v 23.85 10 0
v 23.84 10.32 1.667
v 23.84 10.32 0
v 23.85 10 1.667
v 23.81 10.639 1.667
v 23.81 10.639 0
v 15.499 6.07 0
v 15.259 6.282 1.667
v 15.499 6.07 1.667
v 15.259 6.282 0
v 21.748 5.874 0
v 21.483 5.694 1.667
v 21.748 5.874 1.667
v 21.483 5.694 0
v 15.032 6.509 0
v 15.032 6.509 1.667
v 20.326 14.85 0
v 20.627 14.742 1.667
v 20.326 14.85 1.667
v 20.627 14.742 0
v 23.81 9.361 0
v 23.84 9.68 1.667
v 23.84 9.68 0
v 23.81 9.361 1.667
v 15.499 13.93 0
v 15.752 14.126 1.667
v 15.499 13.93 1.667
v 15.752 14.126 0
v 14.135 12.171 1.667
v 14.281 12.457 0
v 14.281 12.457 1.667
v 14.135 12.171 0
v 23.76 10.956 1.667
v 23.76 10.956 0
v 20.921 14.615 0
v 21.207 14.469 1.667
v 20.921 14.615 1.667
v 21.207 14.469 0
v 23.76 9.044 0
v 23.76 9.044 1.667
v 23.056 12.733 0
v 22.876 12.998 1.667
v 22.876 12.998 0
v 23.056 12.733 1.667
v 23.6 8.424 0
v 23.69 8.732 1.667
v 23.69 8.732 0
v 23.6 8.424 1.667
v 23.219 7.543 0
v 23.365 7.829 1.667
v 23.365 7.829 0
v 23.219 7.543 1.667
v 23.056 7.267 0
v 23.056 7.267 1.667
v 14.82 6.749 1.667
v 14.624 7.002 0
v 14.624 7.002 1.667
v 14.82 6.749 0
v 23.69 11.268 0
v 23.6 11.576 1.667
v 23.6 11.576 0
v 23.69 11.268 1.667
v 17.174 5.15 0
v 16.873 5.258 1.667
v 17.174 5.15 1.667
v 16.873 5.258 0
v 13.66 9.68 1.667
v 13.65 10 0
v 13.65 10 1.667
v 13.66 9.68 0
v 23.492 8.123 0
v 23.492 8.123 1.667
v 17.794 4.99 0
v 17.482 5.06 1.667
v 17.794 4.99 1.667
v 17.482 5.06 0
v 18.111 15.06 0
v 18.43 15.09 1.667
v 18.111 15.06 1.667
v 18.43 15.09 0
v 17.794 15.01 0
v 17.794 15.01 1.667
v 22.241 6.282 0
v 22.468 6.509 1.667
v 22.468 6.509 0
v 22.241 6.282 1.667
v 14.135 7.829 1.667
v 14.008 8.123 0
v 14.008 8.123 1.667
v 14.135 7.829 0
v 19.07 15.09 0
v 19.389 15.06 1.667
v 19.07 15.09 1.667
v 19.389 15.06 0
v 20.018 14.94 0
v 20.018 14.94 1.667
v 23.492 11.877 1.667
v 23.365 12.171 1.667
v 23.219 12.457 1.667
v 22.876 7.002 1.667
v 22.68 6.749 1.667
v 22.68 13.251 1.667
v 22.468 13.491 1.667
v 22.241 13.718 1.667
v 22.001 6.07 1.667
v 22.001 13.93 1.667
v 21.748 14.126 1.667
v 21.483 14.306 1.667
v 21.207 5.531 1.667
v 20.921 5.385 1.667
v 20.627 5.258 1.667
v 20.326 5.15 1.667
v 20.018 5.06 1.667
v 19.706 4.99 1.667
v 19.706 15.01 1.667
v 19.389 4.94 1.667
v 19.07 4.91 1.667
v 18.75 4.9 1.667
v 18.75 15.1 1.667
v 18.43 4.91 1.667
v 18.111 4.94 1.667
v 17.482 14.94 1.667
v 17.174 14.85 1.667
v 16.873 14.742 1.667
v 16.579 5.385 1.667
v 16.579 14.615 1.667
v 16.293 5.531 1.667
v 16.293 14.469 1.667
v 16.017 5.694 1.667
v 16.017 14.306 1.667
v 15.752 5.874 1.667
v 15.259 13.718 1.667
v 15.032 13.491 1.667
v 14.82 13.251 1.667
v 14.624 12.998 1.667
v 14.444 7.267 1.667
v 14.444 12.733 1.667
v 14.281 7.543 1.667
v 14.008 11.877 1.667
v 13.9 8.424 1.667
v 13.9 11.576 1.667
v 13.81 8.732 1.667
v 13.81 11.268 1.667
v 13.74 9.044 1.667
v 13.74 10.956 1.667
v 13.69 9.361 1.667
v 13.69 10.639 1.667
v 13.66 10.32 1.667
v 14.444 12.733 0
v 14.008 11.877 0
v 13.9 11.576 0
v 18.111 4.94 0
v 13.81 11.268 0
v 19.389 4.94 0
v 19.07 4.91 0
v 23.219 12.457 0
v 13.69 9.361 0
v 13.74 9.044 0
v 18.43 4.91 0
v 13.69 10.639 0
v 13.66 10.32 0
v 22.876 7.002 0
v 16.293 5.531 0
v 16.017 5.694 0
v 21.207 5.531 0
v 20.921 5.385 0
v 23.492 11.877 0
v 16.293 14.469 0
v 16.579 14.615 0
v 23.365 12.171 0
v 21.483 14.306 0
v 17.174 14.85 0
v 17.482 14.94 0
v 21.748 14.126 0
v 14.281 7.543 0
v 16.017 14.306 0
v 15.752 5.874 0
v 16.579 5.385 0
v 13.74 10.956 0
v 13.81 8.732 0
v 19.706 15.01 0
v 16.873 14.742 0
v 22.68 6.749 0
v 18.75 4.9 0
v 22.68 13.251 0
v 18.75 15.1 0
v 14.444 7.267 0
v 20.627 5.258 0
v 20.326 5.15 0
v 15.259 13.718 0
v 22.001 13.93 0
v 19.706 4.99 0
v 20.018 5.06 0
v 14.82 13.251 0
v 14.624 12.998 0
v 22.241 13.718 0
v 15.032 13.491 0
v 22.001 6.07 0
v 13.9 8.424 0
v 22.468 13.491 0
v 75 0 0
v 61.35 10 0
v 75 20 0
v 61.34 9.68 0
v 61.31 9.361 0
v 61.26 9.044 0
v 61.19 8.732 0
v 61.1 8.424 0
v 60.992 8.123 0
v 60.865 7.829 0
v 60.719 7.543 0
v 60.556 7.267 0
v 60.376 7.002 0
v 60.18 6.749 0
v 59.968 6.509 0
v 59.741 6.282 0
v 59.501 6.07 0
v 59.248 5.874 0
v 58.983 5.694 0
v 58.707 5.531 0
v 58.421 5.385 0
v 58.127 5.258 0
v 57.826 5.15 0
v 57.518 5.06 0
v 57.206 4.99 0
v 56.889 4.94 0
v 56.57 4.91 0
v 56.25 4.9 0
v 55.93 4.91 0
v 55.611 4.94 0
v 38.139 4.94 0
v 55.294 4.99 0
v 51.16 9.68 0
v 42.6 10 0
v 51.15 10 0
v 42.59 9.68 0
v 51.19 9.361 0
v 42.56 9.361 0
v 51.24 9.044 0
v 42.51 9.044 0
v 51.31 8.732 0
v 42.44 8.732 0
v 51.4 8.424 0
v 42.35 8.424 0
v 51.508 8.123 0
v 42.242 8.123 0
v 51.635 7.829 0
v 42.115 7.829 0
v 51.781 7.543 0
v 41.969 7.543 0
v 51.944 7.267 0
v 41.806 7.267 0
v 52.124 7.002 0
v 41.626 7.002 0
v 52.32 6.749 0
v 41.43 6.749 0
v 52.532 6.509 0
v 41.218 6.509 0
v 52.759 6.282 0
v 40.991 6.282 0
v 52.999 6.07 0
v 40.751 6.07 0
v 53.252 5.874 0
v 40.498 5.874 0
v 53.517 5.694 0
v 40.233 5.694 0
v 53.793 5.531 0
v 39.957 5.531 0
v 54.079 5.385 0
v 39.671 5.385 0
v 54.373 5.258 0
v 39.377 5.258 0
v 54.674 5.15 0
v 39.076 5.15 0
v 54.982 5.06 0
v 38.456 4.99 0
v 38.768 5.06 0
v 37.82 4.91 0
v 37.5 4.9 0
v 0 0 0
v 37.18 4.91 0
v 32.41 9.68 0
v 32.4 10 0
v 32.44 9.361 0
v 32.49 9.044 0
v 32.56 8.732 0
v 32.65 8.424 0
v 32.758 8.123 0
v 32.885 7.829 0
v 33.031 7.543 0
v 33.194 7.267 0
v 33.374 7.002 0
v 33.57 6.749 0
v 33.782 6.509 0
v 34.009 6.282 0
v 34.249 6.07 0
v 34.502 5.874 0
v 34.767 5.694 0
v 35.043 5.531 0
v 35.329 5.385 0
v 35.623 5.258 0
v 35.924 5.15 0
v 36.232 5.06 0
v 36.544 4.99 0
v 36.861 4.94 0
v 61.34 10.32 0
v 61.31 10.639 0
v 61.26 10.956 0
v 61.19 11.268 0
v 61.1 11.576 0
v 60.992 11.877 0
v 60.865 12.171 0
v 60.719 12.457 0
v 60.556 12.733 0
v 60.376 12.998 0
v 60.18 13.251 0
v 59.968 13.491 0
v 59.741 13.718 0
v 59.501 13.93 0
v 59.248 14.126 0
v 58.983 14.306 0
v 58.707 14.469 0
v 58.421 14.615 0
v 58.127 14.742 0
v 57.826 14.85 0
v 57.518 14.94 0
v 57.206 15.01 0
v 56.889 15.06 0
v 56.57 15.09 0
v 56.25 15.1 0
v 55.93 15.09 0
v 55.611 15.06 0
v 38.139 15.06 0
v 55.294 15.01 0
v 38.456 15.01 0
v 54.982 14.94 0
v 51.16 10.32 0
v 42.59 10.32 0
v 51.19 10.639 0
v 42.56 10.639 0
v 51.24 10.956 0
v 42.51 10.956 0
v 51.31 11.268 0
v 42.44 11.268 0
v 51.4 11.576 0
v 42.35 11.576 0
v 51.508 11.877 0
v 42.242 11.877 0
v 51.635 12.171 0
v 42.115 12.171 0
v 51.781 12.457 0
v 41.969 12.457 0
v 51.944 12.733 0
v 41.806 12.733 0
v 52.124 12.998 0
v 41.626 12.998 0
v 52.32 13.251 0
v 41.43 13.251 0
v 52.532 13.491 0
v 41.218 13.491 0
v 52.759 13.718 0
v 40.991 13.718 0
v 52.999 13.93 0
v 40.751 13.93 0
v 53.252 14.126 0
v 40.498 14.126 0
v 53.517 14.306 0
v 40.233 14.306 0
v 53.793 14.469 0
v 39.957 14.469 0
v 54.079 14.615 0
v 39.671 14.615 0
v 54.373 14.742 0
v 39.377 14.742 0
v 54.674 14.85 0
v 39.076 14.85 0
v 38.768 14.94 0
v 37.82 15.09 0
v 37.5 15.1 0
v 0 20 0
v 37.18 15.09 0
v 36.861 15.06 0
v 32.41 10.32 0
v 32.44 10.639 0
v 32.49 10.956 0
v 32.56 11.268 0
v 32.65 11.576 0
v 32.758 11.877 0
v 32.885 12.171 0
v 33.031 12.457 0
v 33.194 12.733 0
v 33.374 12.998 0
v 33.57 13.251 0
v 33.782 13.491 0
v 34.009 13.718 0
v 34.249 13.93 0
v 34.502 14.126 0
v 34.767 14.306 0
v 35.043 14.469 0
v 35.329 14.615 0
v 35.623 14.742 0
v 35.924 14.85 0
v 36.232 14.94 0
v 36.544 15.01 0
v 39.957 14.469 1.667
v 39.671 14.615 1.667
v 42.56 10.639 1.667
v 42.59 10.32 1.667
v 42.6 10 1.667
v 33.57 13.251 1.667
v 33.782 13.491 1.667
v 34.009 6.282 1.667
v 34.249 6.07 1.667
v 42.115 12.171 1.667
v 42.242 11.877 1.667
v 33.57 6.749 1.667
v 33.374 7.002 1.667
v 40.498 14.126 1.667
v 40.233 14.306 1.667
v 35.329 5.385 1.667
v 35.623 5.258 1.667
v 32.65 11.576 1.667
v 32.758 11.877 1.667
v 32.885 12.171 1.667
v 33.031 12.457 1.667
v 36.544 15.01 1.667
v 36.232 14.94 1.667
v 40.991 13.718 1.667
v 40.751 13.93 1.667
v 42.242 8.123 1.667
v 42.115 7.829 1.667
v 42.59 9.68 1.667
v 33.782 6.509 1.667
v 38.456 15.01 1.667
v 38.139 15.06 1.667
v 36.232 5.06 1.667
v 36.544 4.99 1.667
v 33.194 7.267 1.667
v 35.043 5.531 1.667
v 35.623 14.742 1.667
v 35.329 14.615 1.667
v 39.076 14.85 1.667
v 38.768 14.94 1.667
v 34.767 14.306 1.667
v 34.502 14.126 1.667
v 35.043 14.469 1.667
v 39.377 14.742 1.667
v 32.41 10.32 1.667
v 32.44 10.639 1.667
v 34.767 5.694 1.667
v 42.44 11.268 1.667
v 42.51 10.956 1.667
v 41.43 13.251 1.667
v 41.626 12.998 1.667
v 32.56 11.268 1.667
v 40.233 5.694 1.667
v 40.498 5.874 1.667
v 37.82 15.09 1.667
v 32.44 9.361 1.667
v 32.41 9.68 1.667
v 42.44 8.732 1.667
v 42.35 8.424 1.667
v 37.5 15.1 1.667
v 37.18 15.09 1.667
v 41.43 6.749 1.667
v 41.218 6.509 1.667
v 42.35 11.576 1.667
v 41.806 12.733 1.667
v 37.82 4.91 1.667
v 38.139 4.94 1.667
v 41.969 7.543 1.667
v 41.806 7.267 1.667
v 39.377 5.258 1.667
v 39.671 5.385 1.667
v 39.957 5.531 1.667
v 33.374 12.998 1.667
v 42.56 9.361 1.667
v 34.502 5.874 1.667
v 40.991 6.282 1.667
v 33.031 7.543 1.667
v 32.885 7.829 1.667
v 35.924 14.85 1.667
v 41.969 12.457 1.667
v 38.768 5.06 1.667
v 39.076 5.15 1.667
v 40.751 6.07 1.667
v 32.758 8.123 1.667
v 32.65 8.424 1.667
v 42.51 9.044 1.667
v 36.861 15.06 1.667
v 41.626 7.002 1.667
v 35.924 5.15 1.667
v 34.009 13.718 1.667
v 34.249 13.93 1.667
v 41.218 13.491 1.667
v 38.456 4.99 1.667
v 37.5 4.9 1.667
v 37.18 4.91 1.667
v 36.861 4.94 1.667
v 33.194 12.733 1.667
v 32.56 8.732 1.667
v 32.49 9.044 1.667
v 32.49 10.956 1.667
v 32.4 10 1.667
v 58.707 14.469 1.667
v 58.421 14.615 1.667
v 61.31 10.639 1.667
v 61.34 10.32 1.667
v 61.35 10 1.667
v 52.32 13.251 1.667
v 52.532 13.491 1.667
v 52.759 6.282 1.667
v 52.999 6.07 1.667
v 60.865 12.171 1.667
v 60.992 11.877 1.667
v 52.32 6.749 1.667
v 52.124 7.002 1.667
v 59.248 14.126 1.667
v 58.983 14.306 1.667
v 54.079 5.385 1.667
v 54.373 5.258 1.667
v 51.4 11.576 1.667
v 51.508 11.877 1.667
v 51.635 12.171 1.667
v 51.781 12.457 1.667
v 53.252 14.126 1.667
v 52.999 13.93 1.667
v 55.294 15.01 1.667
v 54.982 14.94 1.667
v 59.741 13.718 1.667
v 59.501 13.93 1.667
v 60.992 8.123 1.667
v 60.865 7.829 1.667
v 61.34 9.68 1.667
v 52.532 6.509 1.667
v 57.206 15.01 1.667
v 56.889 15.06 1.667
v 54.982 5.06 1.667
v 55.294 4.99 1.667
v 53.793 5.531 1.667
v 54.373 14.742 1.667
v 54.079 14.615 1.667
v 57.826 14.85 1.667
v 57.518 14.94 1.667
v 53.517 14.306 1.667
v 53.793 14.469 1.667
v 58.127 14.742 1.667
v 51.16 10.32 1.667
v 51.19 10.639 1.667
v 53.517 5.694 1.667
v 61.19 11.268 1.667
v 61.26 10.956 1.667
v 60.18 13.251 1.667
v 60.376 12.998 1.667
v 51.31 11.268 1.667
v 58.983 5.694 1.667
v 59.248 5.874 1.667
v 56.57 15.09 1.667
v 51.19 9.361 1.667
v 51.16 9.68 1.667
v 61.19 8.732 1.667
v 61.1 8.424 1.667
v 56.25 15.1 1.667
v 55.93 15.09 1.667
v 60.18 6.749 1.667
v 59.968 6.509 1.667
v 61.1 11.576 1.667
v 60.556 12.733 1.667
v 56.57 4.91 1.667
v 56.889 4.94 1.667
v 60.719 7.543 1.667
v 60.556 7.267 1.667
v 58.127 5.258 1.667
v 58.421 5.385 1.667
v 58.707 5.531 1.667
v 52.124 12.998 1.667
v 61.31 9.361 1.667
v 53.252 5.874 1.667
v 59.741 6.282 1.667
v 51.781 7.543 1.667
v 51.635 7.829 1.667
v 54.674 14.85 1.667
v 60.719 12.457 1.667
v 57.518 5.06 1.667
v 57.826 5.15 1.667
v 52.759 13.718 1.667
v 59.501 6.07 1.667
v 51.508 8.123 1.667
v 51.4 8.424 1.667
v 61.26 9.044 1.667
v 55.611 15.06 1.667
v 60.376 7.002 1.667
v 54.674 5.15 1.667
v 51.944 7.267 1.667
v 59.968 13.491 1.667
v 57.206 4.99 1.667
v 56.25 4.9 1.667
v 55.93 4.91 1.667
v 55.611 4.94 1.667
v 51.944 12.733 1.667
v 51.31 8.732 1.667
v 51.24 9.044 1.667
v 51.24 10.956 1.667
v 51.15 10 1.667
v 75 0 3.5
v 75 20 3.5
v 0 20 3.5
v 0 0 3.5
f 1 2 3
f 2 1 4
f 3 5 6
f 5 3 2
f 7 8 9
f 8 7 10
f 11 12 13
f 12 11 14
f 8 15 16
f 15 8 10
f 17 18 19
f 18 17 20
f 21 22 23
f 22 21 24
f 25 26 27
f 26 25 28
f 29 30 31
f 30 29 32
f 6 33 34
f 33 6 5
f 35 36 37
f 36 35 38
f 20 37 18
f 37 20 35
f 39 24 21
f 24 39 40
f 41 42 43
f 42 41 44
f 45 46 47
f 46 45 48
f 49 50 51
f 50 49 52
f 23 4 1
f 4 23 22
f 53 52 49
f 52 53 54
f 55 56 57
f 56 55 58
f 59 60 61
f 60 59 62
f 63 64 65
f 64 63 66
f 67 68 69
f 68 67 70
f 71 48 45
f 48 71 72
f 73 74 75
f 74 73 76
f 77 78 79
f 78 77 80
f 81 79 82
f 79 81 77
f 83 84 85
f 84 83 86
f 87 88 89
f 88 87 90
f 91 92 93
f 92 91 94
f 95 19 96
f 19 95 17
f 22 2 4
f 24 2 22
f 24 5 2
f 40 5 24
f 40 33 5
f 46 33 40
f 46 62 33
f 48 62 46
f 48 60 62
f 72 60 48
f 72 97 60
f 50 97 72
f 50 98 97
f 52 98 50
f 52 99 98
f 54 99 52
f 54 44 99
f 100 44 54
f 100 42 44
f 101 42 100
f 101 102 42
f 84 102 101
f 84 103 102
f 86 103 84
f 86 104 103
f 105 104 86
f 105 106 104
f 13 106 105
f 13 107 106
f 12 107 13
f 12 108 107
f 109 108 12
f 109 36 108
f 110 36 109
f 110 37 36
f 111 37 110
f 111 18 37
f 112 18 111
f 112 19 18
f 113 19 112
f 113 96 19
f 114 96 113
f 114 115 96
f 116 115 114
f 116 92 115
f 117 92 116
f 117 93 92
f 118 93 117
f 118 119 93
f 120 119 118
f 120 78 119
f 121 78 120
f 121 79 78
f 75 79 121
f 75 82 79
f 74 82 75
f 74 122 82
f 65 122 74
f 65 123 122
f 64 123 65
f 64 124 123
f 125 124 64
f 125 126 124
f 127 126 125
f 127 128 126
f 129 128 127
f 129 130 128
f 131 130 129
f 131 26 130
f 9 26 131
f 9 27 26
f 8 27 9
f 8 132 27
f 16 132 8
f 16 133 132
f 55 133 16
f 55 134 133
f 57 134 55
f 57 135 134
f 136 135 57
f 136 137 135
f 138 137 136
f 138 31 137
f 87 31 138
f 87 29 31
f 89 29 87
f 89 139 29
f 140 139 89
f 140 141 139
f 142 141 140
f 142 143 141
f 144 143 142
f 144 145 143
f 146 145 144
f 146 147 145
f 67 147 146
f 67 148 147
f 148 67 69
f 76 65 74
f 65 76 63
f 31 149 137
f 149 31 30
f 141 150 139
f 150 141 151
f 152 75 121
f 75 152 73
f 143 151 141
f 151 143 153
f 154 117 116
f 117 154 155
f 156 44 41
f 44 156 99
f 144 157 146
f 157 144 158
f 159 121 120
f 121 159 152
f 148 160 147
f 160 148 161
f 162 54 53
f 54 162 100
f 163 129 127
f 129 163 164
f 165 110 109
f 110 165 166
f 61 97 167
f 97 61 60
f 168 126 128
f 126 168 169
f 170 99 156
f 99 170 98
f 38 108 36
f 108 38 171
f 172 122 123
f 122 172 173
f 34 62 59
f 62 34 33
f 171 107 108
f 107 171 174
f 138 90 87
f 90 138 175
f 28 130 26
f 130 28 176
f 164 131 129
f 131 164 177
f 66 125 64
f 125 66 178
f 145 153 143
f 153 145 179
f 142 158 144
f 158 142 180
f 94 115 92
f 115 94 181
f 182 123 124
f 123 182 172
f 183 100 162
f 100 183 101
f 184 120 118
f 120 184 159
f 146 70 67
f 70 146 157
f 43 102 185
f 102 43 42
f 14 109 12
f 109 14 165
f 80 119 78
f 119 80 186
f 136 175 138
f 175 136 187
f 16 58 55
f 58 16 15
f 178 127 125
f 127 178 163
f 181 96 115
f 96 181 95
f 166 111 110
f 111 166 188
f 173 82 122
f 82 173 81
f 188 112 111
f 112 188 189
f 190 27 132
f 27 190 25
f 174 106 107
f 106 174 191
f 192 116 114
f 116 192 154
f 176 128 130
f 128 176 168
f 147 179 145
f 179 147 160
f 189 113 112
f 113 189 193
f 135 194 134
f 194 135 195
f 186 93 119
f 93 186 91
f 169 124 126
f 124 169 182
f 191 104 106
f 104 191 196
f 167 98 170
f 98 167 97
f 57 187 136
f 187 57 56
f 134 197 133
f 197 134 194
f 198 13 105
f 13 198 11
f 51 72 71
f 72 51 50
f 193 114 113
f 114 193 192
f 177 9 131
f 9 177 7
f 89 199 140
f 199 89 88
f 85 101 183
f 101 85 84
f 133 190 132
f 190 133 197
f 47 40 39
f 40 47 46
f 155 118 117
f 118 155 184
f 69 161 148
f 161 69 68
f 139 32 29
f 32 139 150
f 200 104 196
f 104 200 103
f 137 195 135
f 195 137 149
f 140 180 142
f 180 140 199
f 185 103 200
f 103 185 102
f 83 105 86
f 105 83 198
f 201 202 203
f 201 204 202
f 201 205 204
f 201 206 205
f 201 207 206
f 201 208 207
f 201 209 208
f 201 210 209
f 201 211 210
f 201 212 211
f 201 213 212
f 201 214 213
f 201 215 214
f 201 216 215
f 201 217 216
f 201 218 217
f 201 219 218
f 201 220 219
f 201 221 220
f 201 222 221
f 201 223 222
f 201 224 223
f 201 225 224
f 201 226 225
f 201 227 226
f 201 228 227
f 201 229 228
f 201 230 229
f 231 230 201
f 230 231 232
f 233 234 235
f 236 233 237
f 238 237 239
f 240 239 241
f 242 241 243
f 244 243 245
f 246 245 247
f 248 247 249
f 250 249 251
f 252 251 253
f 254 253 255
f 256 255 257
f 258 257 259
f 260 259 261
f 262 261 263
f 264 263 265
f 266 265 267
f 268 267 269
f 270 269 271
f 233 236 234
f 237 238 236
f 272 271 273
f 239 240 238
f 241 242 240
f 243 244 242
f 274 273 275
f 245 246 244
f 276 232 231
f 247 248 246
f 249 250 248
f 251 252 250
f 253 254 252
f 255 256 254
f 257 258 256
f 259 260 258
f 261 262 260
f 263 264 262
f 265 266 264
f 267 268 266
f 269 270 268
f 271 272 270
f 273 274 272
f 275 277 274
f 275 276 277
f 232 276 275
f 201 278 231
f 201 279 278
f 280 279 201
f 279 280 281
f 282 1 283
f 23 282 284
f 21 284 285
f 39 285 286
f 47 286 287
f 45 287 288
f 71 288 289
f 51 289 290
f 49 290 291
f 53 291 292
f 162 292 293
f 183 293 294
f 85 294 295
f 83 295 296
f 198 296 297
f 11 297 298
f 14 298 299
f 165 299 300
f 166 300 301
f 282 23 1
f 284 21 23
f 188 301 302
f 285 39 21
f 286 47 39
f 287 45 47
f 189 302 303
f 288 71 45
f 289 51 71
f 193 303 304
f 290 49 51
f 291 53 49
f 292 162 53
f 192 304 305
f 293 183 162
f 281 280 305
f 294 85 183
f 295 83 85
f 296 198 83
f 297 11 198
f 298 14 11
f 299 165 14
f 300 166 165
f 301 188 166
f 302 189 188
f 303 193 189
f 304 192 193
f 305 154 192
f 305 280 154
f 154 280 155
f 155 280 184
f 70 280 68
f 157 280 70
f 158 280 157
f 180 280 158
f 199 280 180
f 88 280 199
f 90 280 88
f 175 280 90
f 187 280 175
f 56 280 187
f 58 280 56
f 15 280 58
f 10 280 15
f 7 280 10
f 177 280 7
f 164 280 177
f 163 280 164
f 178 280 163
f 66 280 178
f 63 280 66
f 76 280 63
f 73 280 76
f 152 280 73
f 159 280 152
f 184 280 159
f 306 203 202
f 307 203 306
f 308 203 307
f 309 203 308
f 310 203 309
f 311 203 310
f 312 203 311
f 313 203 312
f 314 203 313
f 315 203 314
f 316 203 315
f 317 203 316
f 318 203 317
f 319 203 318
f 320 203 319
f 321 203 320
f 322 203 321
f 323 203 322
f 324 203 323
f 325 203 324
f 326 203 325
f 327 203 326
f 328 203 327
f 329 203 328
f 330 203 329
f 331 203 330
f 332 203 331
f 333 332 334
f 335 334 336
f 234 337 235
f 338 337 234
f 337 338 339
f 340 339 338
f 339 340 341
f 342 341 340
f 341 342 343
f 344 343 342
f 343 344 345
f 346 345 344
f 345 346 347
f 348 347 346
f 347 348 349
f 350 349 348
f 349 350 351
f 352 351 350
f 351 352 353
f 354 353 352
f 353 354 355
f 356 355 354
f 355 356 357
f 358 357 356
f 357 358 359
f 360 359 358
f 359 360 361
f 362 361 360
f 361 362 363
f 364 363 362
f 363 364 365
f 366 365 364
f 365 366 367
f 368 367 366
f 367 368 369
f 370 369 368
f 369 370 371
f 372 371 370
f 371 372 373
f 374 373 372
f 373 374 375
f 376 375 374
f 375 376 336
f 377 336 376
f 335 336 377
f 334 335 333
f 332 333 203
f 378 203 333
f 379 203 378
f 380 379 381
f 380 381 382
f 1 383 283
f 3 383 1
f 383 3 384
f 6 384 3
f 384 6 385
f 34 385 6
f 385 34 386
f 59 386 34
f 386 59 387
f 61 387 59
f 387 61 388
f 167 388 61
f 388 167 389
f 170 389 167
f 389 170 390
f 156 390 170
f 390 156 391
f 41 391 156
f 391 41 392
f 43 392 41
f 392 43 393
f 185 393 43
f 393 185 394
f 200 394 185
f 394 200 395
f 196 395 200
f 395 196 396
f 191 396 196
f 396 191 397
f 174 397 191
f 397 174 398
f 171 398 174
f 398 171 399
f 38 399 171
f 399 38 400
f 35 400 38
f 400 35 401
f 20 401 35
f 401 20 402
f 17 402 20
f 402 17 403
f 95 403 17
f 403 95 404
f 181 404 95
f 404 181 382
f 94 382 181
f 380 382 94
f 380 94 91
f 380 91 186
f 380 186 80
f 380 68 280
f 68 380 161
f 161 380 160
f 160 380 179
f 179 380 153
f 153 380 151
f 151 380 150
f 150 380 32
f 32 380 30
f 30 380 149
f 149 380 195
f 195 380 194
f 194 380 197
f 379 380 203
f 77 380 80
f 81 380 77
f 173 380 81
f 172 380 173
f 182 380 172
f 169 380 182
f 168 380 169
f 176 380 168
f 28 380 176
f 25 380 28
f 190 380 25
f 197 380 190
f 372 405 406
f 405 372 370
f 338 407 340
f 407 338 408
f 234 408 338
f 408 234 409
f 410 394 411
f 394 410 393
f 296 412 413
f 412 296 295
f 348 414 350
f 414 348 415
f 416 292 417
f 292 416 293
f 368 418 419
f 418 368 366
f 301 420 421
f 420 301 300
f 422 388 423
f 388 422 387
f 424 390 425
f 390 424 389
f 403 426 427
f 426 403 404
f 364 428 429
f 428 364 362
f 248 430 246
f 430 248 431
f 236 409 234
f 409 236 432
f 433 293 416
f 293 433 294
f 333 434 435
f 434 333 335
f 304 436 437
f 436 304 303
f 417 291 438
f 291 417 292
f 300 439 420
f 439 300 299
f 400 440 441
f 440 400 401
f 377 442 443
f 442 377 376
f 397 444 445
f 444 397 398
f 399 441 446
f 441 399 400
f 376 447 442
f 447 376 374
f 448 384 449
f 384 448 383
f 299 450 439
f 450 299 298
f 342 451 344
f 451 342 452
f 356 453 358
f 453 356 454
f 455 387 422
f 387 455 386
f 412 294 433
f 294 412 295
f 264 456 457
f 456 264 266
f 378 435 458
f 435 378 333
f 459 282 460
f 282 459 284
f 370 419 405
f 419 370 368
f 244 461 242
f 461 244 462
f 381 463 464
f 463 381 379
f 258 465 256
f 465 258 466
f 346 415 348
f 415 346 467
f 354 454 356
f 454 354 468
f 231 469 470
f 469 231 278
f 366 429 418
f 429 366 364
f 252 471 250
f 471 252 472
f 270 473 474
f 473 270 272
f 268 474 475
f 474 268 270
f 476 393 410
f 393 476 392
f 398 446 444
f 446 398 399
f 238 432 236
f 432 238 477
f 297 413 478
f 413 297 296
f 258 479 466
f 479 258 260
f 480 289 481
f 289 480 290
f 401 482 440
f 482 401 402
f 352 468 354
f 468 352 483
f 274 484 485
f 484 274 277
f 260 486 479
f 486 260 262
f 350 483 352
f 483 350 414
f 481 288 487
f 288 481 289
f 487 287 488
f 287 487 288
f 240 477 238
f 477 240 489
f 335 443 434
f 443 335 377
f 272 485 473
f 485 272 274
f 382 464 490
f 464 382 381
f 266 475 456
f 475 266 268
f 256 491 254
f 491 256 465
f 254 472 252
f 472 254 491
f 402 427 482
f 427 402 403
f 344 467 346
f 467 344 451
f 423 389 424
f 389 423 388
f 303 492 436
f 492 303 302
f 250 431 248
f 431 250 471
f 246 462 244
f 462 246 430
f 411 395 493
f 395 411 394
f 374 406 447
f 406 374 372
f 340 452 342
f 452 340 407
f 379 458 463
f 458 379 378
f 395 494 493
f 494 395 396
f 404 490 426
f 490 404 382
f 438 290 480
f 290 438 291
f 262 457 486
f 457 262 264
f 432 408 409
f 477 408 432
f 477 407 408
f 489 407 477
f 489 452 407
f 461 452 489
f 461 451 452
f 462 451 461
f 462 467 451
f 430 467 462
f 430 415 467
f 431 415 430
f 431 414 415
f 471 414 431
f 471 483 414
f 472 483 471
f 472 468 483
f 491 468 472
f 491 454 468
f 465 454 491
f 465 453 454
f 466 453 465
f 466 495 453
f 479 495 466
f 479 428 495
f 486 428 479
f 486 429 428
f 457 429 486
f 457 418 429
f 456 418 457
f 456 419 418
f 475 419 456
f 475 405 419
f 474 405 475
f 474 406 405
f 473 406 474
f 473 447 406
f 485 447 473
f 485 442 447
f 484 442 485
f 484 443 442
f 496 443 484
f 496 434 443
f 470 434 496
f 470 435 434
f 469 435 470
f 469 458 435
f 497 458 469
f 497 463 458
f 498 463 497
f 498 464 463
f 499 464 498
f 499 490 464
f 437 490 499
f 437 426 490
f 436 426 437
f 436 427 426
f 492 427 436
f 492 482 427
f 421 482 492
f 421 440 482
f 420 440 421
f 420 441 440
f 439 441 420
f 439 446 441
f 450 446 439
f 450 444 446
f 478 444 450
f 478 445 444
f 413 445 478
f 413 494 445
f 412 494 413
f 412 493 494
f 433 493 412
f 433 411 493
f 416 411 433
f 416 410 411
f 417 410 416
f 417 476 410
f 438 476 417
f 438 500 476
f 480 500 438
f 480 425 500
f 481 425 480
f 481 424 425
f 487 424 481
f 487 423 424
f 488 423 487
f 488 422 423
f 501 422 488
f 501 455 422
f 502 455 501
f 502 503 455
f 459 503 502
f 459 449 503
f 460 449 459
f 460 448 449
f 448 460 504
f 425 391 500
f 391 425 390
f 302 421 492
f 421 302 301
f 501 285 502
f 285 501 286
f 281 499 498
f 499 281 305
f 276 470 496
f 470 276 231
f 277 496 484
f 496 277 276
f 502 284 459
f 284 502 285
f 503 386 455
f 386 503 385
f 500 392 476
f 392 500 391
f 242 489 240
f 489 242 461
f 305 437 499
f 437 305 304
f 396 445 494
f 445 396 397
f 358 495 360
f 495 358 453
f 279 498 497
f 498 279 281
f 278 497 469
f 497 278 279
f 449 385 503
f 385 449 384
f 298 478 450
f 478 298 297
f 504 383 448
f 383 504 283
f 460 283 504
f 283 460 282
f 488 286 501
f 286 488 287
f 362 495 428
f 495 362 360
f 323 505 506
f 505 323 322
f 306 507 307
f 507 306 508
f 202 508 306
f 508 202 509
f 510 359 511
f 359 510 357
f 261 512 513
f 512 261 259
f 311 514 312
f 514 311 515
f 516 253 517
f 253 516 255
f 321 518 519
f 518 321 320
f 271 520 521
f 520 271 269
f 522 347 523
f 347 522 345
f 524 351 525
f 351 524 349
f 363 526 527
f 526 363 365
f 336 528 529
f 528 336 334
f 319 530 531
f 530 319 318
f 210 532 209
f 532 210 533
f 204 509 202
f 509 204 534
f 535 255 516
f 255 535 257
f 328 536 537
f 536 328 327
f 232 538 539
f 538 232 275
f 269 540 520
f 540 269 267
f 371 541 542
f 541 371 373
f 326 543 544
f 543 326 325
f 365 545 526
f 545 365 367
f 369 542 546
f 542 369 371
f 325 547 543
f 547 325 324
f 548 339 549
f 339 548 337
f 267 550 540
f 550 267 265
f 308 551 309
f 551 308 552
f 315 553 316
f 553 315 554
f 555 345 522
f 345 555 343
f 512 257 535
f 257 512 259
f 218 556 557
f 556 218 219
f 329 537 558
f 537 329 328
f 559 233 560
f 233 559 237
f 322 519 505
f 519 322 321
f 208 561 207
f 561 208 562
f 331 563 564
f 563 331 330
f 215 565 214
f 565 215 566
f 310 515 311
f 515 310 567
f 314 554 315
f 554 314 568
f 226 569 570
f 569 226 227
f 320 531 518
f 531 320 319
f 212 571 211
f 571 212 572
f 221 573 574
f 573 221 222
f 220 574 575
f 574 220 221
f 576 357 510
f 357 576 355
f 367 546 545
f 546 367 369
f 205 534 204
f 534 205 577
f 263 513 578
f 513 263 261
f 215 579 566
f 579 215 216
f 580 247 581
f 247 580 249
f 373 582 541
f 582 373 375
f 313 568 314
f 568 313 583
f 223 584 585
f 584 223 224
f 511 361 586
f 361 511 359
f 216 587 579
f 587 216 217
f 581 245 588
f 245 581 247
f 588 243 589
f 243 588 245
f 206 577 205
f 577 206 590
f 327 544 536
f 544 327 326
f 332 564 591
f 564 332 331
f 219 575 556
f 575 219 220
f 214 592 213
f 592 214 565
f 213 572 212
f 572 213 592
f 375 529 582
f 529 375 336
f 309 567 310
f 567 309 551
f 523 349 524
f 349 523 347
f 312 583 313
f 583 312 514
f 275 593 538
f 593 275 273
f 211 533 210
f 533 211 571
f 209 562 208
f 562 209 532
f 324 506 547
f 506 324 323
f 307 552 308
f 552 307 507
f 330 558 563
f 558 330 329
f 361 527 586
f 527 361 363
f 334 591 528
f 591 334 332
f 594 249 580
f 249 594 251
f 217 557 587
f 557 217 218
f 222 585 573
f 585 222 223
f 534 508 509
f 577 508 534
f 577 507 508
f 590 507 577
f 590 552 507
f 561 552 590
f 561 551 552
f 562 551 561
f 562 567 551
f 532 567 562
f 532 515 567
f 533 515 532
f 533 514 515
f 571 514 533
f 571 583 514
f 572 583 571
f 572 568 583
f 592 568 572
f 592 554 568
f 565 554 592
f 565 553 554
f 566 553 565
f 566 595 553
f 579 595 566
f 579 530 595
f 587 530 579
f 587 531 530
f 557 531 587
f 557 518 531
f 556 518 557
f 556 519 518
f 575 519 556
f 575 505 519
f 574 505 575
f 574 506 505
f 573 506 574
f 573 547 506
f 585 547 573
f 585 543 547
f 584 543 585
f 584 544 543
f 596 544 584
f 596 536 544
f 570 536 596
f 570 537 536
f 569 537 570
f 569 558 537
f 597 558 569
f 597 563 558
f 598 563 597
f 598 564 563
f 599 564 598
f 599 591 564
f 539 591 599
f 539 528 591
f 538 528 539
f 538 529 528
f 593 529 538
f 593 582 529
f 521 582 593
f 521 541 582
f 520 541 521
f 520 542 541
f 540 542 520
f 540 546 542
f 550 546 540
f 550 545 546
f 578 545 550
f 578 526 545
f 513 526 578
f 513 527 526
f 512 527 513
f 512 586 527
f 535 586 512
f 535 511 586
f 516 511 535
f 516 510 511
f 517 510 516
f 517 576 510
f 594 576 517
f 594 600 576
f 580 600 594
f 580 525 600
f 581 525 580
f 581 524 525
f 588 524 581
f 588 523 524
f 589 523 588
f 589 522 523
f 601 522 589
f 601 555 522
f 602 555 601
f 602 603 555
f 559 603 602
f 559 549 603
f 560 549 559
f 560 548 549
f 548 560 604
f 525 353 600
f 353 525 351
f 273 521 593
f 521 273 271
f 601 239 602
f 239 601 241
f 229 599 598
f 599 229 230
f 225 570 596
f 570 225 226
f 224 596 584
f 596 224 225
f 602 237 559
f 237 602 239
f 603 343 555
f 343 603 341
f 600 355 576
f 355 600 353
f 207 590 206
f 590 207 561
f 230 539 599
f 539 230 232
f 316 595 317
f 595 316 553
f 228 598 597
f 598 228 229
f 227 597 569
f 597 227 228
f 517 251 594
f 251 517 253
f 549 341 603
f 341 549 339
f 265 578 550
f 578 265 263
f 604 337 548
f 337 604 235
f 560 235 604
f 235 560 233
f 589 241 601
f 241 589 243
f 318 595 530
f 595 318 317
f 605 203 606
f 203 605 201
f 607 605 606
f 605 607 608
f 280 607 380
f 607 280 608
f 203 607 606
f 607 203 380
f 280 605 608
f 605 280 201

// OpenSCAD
$fn = 100;

gap = 9; // mm

fudge =  0.1; // mm

command_strip_height = 1;
command_strip_width = 20;
command_strip_length = 75;

magnet_height = 10.0/6; // mm
magnet_r = 10.0/2 + fudge; // mm

module magnet() {
    cylinder(h=magnet_height, r=magnet_r);
}


module base() {
    height = gap / 2 - command_strip_height;
    cube([
        command_strip_length,
        command_strip_width,
        height,
    ]);
}

difference() {
base();

for (i = [0, 1, 2]) {
    
    translate([(i+1) * command_strip_length/4, command_strip_width/2, 0])
    magnet();
}
}
